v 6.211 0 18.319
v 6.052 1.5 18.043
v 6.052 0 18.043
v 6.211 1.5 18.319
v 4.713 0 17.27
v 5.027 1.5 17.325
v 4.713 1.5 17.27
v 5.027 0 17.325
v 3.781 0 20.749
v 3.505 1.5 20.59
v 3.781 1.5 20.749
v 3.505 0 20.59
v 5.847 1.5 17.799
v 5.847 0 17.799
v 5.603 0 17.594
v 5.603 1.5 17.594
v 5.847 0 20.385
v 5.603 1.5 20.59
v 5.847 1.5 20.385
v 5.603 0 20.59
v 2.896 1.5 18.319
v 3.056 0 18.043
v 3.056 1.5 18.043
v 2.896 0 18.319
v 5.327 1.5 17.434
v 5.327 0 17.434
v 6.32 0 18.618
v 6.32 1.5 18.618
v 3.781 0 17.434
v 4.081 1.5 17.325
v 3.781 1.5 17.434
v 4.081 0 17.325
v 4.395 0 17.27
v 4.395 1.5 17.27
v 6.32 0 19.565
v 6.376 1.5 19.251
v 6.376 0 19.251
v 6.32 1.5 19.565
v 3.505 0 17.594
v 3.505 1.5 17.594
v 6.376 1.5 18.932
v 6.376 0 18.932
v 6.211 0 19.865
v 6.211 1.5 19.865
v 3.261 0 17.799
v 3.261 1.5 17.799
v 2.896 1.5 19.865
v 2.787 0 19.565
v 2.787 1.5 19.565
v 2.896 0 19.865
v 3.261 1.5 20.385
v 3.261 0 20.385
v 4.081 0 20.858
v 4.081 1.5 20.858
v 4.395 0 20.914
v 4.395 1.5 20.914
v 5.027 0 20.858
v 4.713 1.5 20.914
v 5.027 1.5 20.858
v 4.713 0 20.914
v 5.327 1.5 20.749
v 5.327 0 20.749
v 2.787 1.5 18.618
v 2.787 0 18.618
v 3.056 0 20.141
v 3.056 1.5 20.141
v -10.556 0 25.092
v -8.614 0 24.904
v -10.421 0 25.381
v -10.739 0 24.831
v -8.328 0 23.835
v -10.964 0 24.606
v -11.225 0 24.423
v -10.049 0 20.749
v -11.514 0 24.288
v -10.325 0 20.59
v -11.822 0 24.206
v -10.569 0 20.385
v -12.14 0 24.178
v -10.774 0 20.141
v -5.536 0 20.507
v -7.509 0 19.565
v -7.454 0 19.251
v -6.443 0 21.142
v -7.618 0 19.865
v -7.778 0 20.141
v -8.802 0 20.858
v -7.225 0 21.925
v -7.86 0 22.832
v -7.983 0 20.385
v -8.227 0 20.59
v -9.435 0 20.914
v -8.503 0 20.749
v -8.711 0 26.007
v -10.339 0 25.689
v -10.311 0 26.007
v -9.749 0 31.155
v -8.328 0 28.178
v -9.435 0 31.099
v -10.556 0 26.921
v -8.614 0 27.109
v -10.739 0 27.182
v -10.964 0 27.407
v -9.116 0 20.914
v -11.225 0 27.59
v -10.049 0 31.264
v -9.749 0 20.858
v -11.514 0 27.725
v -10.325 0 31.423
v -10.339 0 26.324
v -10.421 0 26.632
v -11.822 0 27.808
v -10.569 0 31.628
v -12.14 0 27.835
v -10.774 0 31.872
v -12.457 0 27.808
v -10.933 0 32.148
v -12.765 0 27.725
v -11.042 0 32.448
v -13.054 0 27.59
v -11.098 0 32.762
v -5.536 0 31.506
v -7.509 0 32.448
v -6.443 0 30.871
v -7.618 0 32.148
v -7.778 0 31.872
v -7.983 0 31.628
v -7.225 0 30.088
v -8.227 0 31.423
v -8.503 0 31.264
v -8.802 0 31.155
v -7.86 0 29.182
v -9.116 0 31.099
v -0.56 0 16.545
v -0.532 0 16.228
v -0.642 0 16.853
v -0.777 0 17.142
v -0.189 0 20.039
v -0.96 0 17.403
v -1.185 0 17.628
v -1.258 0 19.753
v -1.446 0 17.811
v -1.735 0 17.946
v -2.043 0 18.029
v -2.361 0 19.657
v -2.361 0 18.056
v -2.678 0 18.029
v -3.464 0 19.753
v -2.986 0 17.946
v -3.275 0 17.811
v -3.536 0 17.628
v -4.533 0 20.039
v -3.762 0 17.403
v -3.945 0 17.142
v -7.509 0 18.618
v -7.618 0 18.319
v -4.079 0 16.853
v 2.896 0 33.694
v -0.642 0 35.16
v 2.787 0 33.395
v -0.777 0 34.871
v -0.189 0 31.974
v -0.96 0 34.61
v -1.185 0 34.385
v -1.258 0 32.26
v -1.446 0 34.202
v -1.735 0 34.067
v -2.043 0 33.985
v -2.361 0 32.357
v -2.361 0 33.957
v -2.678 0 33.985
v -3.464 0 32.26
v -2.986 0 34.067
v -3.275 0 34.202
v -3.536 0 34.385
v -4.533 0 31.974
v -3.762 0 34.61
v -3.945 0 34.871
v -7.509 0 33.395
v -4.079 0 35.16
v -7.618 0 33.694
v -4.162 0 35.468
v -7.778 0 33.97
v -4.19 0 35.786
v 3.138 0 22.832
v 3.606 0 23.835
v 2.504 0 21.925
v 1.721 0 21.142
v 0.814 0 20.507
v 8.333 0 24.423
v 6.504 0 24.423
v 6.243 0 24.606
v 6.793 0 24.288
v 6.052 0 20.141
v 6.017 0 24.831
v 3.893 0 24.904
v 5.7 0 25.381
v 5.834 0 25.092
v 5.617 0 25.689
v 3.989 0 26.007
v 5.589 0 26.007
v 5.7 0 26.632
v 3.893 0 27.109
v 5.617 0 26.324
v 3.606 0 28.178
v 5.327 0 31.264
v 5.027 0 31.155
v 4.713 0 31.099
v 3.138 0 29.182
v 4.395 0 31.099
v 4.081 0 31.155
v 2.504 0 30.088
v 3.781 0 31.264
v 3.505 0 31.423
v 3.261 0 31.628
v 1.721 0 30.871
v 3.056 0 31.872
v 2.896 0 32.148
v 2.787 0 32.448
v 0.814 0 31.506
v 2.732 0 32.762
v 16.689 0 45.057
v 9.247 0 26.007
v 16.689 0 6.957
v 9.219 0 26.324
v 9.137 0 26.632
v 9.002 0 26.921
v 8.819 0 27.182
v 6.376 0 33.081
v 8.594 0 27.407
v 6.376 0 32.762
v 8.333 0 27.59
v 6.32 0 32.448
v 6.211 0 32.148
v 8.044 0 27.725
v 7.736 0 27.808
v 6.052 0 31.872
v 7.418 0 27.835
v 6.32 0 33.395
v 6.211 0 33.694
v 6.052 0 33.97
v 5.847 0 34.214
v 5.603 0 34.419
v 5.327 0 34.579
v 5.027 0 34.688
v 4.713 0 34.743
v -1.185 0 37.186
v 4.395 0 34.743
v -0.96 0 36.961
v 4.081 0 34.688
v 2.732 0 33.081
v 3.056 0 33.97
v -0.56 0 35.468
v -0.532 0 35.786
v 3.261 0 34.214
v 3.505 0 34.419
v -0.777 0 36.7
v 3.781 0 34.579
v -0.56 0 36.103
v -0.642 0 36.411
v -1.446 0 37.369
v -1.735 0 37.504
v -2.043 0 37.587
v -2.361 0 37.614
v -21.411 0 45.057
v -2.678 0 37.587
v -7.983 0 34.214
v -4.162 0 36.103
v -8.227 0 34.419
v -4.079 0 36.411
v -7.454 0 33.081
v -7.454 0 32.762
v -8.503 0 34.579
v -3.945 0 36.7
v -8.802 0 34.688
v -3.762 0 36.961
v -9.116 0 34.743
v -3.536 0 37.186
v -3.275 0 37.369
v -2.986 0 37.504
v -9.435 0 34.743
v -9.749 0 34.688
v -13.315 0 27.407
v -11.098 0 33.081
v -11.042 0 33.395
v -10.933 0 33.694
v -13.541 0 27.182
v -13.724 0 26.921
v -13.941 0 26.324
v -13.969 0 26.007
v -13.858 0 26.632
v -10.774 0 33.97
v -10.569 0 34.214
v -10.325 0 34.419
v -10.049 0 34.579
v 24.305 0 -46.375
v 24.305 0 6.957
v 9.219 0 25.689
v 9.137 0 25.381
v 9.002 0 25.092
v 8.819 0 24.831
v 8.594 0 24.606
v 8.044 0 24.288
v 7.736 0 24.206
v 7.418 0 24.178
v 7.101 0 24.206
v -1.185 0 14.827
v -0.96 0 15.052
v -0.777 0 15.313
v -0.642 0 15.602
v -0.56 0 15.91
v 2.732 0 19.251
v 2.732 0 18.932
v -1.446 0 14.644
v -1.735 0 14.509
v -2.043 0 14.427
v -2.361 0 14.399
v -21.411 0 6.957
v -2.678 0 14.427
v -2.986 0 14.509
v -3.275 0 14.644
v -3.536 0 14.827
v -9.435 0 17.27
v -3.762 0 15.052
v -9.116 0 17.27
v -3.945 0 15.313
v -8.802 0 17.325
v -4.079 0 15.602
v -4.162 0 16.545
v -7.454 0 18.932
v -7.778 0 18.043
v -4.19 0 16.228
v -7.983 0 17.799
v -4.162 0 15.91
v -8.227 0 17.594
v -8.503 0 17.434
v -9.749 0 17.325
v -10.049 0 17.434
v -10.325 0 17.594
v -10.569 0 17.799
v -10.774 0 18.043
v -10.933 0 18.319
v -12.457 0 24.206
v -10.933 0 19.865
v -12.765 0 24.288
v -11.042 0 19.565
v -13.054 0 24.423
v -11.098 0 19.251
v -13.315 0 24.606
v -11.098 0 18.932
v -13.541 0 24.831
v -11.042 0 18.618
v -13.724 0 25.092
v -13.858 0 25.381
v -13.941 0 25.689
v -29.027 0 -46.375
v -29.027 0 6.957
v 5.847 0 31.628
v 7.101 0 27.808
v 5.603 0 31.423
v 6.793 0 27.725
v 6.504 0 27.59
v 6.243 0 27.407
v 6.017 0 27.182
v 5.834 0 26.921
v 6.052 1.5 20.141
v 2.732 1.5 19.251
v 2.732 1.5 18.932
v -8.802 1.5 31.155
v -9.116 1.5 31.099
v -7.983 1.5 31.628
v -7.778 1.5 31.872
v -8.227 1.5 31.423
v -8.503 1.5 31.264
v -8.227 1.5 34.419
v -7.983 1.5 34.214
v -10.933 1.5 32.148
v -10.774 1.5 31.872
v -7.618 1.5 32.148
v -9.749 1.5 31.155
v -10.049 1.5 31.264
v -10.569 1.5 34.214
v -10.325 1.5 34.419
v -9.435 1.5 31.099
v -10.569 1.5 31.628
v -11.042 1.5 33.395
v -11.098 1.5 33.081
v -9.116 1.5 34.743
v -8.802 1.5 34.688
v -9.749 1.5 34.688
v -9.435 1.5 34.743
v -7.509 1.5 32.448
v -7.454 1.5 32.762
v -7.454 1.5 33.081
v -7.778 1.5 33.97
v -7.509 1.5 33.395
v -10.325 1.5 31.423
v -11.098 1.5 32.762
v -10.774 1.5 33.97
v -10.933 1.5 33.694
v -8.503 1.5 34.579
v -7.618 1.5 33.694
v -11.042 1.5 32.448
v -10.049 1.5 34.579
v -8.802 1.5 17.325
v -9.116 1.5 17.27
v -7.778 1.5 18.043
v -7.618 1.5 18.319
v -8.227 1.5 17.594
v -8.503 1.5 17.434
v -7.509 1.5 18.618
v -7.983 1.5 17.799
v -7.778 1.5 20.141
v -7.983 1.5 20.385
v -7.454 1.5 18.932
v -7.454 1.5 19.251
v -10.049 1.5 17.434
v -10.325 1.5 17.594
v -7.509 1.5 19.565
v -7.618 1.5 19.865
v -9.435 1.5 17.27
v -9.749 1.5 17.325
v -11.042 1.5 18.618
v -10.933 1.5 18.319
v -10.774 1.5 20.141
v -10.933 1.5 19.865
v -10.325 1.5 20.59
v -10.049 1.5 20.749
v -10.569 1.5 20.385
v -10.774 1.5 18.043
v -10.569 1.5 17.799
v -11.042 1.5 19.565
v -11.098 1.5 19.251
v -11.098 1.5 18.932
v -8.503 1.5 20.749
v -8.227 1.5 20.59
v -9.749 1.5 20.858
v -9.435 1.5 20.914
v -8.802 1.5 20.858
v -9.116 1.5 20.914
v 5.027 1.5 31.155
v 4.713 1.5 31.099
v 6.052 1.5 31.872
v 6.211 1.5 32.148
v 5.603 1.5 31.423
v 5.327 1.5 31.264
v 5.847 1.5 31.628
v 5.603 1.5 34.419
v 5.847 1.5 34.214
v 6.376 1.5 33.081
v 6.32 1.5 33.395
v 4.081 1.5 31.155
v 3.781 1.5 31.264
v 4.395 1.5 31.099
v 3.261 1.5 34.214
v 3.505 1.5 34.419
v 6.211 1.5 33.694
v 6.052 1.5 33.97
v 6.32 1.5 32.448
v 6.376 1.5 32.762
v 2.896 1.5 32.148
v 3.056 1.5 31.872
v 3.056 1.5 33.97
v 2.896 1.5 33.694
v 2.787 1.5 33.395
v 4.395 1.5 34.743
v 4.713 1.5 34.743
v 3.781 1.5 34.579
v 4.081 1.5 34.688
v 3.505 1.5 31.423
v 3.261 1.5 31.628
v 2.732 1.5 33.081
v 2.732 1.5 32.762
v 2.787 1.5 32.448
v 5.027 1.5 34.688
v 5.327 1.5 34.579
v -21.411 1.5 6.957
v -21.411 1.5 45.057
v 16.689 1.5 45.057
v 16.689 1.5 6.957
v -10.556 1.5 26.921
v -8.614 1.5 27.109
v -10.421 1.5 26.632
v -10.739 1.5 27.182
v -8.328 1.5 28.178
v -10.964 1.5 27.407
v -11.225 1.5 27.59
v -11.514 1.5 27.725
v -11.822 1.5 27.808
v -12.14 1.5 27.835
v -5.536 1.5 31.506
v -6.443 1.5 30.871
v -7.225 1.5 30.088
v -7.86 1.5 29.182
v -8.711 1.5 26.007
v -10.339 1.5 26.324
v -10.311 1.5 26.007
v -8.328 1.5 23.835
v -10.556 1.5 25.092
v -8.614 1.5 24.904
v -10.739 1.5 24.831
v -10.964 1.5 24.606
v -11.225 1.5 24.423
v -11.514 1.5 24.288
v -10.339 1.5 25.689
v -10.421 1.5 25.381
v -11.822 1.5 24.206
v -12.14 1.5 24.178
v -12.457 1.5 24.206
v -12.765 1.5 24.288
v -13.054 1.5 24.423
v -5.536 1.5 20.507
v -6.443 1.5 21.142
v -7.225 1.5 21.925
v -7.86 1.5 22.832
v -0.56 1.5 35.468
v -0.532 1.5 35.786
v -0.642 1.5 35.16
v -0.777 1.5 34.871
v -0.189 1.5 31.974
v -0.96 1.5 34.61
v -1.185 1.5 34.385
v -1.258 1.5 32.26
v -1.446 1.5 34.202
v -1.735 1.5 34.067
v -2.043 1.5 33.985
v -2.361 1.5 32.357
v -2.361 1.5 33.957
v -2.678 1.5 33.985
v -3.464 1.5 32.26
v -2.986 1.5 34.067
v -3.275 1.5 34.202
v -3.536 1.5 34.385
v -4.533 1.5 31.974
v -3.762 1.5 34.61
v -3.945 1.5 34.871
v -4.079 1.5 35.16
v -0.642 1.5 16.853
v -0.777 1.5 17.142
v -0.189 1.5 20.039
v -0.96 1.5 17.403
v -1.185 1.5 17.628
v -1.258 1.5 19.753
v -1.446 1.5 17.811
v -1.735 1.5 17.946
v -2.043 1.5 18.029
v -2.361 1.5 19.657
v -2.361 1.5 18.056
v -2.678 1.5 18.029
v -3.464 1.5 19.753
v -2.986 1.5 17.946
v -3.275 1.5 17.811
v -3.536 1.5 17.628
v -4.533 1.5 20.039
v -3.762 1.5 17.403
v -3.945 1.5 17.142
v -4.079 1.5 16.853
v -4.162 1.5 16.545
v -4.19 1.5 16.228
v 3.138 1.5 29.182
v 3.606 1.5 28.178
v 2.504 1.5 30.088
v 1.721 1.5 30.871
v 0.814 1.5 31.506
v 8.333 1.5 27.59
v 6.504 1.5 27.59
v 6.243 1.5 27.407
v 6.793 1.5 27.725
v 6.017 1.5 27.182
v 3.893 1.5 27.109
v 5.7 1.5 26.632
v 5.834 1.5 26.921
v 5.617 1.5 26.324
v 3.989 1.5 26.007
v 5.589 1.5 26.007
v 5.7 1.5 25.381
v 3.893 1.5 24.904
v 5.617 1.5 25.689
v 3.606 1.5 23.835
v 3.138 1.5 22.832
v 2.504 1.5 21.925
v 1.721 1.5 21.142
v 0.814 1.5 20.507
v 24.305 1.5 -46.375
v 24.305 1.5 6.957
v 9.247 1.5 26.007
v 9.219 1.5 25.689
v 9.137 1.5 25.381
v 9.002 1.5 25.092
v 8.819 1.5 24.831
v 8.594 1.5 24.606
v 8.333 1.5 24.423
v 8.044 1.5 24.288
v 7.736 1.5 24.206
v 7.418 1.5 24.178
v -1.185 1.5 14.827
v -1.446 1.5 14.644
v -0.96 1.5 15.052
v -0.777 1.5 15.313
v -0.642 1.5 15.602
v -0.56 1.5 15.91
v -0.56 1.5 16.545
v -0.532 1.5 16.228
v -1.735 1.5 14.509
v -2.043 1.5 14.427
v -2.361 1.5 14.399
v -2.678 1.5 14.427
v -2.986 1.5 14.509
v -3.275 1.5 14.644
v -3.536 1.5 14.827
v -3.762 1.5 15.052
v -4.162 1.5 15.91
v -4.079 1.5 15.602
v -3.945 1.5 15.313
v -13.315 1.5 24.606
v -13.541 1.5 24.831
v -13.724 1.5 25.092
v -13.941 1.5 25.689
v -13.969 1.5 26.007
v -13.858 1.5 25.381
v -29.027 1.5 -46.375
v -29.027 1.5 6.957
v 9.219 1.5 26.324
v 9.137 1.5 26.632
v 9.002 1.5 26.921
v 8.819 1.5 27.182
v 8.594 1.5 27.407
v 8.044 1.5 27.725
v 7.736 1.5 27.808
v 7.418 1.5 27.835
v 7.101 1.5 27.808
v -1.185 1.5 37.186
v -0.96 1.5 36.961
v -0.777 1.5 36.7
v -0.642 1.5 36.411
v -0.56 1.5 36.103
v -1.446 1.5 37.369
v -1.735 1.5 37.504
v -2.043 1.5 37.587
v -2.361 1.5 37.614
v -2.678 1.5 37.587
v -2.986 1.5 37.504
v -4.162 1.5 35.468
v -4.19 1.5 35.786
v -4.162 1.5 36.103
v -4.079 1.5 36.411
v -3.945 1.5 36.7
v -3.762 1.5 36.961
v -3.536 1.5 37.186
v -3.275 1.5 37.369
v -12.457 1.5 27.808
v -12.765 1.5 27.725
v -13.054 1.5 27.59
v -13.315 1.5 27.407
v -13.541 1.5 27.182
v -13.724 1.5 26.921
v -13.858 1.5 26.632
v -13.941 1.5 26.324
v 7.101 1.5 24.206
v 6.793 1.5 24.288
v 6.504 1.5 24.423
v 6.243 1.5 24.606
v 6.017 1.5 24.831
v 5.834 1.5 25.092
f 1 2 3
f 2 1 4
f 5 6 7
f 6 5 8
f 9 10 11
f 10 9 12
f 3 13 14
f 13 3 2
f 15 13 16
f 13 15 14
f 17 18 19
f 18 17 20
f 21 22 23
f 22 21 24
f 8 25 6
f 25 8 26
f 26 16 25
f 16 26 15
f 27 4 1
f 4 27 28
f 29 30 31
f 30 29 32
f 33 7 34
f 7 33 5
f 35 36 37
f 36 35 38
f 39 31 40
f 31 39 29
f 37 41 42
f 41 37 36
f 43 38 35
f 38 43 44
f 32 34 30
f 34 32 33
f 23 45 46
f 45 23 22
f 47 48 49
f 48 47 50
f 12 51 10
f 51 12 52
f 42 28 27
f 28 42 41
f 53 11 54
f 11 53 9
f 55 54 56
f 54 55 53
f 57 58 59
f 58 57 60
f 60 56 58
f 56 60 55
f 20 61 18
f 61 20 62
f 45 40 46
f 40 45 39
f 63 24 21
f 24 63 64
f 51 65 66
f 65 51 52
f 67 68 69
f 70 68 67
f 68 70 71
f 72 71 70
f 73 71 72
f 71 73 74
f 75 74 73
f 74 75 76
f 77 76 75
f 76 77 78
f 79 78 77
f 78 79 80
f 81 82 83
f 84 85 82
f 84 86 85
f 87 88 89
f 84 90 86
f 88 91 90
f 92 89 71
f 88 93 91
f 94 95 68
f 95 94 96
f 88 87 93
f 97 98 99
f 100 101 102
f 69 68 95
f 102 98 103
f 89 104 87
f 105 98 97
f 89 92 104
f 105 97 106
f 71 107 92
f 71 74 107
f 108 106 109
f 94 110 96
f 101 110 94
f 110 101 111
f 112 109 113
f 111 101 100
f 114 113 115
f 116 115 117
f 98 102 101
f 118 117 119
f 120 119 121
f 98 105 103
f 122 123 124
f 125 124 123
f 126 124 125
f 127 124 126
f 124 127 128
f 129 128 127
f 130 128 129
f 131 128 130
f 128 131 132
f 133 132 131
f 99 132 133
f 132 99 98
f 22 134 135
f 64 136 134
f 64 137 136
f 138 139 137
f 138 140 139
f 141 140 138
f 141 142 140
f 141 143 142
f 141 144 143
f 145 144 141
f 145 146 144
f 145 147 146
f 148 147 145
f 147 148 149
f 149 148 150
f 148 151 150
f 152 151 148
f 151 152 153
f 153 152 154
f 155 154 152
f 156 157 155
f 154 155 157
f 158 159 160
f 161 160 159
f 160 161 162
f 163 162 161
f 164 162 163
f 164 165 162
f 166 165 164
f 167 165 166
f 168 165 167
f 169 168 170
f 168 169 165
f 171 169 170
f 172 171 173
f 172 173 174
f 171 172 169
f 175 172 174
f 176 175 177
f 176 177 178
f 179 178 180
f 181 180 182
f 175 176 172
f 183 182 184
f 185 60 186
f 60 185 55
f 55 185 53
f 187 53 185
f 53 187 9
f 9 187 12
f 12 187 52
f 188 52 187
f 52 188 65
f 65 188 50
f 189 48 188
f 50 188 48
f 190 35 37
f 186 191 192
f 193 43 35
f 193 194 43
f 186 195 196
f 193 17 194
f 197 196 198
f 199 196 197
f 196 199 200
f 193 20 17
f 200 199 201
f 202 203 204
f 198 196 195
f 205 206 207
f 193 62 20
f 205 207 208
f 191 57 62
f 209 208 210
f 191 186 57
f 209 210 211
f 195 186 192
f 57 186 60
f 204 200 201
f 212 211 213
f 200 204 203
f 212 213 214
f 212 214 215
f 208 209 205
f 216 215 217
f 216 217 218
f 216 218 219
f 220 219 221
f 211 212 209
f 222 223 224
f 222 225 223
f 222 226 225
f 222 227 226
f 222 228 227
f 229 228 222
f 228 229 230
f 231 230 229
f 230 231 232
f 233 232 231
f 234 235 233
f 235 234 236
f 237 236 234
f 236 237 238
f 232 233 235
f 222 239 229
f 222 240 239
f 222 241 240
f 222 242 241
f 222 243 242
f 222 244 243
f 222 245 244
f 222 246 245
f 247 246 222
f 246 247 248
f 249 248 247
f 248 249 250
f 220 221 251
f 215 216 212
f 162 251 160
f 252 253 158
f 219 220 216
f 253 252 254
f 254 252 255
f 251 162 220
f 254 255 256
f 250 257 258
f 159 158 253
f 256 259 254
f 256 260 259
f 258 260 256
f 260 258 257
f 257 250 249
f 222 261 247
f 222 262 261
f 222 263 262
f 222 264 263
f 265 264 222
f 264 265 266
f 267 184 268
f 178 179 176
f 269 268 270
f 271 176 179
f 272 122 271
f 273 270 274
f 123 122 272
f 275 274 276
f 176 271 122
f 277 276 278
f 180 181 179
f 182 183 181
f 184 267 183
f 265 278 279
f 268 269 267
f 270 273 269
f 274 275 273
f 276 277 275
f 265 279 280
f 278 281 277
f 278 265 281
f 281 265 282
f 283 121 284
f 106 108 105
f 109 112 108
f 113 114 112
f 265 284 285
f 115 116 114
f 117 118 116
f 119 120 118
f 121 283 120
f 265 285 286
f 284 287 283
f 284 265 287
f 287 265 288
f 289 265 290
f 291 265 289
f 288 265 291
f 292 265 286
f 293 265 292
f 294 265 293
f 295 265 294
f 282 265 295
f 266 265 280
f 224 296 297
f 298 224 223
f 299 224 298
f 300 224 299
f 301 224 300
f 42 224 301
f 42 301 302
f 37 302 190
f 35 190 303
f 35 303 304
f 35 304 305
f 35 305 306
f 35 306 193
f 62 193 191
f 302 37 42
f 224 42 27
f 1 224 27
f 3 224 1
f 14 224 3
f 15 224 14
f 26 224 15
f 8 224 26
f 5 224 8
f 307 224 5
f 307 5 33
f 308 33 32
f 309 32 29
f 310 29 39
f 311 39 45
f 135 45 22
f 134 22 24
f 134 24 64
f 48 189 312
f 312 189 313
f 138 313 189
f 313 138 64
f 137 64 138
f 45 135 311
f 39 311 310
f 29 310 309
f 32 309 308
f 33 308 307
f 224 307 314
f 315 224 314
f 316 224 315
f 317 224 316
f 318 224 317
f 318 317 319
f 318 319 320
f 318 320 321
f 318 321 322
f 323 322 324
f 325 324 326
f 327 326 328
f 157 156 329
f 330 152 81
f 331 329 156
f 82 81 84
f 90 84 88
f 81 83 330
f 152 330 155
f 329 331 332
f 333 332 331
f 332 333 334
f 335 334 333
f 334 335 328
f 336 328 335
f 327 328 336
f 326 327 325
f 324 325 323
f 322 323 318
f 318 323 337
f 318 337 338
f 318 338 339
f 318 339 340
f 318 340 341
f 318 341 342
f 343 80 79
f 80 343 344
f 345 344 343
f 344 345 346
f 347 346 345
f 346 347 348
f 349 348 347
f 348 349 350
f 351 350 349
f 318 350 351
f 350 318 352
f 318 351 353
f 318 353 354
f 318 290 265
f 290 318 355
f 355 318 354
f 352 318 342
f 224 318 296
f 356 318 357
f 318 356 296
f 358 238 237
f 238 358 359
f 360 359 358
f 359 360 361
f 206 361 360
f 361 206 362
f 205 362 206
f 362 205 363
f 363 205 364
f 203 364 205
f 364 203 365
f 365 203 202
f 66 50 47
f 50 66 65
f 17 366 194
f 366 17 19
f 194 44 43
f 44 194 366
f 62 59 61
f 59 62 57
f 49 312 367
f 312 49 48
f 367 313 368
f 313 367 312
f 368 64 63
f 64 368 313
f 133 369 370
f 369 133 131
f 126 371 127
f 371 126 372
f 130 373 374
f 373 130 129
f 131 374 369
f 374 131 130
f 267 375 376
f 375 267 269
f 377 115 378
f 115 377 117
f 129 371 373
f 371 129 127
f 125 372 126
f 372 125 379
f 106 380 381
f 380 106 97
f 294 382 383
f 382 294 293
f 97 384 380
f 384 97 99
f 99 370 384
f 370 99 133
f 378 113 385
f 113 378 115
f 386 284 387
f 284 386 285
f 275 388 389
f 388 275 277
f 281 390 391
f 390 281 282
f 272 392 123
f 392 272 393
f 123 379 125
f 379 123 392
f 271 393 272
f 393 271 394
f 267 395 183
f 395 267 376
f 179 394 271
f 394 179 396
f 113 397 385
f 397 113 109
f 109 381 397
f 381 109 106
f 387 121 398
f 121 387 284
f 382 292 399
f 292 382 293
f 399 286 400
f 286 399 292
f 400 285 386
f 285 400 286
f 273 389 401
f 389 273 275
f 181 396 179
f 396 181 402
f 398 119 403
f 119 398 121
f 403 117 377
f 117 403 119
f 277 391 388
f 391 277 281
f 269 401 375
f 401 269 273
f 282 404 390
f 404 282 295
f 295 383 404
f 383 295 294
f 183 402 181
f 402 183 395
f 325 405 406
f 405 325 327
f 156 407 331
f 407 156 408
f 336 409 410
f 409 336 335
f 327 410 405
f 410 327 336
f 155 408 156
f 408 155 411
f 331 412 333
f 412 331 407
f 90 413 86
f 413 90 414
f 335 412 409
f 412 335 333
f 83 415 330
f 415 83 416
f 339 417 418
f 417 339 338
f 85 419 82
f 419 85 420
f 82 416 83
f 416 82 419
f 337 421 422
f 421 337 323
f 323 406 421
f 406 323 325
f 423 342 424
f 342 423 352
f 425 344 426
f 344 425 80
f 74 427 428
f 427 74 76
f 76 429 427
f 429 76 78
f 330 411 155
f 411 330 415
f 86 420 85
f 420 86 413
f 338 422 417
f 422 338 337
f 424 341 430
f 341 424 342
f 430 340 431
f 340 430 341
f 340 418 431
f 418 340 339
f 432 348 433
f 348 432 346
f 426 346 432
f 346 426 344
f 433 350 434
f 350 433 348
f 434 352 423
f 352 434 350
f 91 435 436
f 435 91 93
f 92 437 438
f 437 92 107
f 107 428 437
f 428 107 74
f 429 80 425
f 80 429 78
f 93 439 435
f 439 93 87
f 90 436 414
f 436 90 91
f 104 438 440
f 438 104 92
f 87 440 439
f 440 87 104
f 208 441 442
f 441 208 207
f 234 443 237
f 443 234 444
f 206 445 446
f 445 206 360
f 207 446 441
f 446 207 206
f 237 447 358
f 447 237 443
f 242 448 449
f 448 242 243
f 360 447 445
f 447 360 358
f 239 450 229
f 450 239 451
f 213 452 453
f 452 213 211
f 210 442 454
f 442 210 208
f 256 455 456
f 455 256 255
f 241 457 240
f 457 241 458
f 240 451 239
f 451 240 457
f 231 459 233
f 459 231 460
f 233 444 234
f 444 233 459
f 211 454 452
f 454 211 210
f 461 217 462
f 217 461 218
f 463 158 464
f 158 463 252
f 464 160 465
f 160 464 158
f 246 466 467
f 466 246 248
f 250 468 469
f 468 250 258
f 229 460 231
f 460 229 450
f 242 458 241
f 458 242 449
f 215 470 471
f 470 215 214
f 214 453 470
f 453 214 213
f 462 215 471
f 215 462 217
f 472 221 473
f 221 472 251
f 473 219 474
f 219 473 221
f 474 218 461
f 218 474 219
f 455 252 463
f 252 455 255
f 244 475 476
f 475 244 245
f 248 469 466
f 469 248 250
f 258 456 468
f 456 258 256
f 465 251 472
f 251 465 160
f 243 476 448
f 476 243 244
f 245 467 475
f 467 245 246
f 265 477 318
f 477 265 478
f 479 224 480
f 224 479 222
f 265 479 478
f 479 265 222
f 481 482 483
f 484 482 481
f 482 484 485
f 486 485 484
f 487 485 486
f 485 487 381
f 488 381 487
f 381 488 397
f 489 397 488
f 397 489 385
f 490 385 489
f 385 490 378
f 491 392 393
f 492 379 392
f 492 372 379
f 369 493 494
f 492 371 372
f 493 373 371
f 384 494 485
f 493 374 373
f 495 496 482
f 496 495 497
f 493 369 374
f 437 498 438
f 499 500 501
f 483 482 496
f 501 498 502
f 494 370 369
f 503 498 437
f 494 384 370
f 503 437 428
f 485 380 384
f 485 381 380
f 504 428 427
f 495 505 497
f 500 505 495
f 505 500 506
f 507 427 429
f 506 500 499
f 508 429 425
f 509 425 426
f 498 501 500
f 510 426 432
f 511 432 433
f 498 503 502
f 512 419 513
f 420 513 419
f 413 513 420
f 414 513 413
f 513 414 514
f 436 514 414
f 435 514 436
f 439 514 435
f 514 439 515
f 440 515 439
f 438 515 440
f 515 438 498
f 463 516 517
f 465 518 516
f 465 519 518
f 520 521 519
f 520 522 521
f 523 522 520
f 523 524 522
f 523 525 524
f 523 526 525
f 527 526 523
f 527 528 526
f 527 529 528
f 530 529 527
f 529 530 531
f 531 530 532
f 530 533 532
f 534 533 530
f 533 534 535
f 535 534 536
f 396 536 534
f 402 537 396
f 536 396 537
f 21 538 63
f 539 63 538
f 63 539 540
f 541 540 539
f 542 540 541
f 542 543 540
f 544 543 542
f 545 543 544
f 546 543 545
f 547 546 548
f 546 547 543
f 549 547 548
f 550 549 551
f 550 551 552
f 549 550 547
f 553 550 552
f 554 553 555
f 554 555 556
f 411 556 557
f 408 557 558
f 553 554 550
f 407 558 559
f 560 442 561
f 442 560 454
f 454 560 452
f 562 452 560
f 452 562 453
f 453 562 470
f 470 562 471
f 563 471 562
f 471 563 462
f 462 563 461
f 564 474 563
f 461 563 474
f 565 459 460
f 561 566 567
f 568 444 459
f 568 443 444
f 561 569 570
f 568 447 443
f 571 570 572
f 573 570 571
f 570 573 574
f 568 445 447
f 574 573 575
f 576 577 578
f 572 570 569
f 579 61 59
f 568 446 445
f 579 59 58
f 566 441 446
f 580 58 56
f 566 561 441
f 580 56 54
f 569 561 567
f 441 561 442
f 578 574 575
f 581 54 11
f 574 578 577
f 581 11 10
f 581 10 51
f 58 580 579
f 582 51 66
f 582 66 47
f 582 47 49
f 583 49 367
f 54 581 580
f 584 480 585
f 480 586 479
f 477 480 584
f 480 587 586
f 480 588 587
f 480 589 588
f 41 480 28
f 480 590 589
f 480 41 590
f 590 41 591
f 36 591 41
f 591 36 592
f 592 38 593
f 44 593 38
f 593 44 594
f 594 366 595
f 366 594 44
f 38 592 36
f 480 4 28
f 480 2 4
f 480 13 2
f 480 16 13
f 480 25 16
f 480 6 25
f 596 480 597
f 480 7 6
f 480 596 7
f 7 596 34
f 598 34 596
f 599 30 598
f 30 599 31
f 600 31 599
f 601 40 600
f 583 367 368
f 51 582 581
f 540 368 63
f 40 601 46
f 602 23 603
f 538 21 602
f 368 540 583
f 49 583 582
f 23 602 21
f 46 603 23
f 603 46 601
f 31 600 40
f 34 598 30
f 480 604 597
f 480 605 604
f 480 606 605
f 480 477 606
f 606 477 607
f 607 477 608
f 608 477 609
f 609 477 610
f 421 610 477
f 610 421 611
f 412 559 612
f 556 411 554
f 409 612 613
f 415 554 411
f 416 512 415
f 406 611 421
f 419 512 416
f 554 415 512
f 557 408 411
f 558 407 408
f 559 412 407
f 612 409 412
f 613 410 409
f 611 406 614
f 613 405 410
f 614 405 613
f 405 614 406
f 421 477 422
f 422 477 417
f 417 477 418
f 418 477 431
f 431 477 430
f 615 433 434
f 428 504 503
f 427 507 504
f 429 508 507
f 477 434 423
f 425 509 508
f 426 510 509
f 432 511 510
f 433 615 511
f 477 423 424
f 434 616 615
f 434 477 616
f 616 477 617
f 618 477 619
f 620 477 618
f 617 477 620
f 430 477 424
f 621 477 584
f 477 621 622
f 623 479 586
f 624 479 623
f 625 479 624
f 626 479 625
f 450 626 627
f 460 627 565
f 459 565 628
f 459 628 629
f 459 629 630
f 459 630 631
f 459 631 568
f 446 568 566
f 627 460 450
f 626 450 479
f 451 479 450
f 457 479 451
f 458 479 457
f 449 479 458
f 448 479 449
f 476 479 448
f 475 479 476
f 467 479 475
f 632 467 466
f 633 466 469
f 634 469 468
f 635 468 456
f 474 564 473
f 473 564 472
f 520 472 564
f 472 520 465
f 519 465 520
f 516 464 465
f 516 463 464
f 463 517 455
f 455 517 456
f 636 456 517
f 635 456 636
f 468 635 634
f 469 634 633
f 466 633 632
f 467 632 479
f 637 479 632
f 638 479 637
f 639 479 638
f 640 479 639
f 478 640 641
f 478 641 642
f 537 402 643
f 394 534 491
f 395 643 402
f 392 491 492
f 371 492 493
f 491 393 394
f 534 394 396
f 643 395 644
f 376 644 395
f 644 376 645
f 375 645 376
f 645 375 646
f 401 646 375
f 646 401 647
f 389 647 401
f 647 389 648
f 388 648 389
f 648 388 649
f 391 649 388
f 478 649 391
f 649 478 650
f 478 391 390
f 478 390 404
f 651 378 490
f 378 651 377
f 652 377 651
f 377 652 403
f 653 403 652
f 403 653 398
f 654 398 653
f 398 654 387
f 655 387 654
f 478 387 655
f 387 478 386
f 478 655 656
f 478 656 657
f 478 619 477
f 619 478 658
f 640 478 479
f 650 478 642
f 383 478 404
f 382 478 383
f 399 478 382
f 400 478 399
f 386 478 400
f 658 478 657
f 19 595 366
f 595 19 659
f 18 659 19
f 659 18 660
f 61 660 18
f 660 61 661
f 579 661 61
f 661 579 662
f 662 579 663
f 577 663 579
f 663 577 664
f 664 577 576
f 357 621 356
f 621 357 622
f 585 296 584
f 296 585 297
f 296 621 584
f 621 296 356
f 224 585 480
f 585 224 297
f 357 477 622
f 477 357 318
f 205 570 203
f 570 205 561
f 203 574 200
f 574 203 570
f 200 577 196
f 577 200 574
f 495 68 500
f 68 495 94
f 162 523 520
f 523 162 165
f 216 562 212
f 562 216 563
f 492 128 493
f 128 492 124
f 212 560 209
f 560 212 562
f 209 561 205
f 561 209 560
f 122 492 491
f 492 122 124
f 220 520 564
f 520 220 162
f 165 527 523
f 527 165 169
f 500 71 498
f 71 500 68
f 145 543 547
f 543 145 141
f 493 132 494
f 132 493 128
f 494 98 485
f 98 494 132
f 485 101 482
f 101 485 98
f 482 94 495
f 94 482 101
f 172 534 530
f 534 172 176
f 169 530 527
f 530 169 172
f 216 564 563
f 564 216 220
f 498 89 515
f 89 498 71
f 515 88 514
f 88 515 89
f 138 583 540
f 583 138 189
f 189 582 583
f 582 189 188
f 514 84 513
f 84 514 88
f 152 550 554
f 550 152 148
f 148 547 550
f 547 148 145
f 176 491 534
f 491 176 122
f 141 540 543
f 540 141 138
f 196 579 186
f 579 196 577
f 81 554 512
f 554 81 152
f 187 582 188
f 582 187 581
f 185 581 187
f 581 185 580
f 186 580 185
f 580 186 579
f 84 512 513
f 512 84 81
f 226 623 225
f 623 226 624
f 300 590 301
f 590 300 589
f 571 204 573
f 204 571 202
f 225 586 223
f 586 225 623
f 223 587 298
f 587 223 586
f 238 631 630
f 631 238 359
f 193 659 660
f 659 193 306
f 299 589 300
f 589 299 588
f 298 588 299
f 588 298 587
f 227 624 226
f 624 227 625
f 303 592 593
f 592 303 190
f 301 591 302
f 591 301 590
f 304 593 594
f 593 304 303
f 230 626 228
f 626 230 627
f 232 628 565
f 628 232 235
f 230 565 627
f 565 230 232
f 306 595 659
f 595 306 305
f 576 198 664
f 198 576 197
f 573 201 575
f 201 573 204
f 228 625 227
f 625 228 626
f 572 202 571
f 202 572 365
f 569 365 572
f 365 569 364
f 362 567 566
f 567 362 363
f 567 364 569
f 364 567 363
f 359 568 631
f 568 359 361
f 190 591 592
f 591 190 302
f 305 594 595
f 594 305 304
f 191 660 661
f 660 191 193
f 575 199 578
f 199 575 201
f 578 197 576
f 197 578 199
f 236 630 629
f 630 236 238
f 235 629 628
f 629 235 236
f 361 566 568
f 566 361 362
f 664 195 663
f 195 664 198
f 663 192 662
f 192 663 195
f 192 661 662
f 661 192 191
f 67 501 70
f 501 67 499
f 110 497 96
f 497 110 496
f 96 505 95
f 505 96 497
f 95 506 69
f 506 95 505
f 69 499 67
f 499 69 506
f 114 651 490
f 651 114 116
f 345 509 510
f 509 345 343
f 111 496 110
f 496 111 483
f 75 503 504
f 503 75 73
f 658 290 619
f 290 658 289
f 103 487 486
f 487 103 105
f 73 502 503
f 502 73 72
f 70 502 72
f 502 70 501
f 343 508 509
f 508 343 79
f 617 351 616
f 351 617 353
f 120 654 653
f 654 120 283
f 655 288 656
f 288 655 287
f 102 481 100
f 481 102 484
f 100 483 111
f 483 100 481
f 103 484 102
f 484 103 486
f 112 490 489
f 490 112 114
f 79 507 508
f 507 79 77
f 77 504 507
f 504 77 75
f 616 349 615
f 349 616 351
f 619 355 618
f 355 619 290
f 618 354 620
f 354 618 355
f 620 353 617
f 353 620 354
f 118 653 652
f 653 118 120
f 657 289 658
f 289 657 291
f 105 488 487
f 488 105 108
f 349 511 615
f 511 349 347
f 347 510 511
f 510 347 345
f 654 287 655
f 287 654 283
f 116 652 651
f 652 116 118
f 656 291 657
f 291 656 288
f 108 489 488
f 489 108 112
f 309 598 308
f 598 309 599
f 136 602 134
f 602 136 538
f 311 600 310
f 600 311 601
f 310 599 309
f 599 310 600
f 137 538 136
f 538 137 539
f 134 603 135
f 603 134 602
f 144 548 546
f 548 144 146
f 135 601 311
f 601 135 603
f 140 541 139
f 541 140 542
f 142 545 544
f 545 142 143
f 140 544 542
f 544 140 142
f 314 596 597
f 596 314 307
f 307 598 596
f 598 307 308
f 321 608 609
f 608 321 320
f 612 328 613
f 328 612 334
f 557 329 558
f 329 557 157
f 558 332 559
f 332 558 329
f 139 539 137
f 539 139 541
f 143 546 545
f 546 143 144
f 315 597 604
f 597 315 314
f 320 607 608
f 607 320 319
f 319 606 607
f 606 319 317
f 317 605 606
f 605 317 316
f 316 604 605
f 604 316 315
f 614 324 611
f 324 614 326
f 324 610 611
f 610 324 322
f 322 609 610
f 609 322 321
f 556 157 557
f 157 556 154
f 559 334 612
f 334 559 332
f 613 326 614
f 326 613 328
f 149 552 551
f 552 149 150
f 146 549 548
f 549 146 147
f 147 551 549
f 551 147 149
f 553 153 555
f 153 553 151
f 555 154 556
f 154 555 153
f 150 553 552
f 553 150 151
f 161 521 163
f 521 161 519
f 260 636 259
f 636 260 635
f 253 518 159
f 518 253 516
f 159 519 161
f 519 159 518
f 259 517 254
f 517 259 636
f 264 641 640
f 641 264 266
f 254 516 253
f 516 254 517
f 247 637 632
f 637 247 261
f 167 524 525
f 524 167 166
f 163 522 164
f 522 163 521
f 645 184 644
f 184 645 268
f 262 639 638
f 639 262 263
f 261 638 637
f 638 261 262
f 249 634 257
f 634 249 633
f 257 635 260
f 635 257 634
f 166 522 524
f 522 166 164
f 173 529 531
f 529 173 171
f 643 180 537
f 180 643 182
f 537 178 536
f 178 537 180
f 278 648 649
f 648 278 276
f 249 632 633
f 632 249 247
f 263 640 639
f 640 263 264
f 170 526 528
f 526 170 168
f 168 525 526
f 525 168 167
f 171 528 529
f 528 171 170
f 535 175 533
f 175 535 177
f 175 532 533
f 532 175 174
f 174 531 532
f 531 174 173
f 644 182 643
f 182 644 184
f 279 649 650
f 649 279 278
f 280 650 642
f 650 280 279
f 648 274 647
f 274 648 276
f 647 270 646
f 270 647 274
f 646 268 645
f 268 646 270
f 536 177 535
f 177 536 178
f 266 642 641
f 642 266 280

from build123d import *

# Parameters (mm, degrees)
SKETCH1_R           = 1.8288
SKETCH1_R_2         = 6.35
BOSS_EXTRUDE1_DEPTH = 1.5


with BuildPart() as part:
    # Sketch1 → Boss-Extrude1 (new body)
    with BuildSketch(Plane(origin=(0, 0, 0), x_dir=(1, 0, 0), z_dir=(0, 1, 0))):
        Polygon((-21.410875754, -45.056521739), (16.689124246, -45.056521739), (16.689124246, -6.956521739), (24.298964246, -6.956521739), (24.298964246, 46.363158261), (-29.020715754, 46.363158261), (-29.020715754, -6.956521739), (-21.410875754, -6.956521739), align=None)
        with Locations(Location((-9.275672968, -19.091724526, 0), (0, 0, 270))):
            Circle(SKETCH1_R, mode=Mode.SUBTRACT)
        with Locations(Location((-2.360875754, -16.227521739, 0), (0, 0, 270))):
            Circle(SKETCH1_R, mode=Mode.SUBTRACT)
        with Locations(Location((-12.139875754, -26.006521739, 0), (0, 0, 270))):
            Circle(SKETCH1_R, mode=Mode.SUBTRACT)
        with Locations(Location((4.553921459, -19.091724526, 0), (0, 0, 270))):
            Circle(SKETCH1_R, mode=Mode.SUBTRACT)
        with Locations(Location((7.418124246, -26.006521739, 0), (0, 0, 270))):
            Circle(SKETCH1_R, mode=Mode.SUBTRACT)
        with Locations(Location((4.553921459, -32.921318952, 0), (0, 0, 270))):
            Circle(SKETCH1_R, mode=Mode.SUBTRACT)
        with Locations(Location((-2.360875754, -35.785521739, 0), (0, 0, 270))):
            Circle(SKETCH1_R, mode=Mode.SUBTRACT)
        with Locations(Location((-9.275672968, -32.921318952, 0), (0, 0, 270))):
            Circle(SKETCH1_R, mode=Mode.SUBTRACT)
        with Locations(Location((-2.360875754, -26.006521739, 0), (0, 0, 270))):
            Circle(SKETCH1_R_2, mode=Mode.SUBTRACT)
    extrude(amount=BOSS_EXTRUDE1_DEPTH)


solid = part.part
